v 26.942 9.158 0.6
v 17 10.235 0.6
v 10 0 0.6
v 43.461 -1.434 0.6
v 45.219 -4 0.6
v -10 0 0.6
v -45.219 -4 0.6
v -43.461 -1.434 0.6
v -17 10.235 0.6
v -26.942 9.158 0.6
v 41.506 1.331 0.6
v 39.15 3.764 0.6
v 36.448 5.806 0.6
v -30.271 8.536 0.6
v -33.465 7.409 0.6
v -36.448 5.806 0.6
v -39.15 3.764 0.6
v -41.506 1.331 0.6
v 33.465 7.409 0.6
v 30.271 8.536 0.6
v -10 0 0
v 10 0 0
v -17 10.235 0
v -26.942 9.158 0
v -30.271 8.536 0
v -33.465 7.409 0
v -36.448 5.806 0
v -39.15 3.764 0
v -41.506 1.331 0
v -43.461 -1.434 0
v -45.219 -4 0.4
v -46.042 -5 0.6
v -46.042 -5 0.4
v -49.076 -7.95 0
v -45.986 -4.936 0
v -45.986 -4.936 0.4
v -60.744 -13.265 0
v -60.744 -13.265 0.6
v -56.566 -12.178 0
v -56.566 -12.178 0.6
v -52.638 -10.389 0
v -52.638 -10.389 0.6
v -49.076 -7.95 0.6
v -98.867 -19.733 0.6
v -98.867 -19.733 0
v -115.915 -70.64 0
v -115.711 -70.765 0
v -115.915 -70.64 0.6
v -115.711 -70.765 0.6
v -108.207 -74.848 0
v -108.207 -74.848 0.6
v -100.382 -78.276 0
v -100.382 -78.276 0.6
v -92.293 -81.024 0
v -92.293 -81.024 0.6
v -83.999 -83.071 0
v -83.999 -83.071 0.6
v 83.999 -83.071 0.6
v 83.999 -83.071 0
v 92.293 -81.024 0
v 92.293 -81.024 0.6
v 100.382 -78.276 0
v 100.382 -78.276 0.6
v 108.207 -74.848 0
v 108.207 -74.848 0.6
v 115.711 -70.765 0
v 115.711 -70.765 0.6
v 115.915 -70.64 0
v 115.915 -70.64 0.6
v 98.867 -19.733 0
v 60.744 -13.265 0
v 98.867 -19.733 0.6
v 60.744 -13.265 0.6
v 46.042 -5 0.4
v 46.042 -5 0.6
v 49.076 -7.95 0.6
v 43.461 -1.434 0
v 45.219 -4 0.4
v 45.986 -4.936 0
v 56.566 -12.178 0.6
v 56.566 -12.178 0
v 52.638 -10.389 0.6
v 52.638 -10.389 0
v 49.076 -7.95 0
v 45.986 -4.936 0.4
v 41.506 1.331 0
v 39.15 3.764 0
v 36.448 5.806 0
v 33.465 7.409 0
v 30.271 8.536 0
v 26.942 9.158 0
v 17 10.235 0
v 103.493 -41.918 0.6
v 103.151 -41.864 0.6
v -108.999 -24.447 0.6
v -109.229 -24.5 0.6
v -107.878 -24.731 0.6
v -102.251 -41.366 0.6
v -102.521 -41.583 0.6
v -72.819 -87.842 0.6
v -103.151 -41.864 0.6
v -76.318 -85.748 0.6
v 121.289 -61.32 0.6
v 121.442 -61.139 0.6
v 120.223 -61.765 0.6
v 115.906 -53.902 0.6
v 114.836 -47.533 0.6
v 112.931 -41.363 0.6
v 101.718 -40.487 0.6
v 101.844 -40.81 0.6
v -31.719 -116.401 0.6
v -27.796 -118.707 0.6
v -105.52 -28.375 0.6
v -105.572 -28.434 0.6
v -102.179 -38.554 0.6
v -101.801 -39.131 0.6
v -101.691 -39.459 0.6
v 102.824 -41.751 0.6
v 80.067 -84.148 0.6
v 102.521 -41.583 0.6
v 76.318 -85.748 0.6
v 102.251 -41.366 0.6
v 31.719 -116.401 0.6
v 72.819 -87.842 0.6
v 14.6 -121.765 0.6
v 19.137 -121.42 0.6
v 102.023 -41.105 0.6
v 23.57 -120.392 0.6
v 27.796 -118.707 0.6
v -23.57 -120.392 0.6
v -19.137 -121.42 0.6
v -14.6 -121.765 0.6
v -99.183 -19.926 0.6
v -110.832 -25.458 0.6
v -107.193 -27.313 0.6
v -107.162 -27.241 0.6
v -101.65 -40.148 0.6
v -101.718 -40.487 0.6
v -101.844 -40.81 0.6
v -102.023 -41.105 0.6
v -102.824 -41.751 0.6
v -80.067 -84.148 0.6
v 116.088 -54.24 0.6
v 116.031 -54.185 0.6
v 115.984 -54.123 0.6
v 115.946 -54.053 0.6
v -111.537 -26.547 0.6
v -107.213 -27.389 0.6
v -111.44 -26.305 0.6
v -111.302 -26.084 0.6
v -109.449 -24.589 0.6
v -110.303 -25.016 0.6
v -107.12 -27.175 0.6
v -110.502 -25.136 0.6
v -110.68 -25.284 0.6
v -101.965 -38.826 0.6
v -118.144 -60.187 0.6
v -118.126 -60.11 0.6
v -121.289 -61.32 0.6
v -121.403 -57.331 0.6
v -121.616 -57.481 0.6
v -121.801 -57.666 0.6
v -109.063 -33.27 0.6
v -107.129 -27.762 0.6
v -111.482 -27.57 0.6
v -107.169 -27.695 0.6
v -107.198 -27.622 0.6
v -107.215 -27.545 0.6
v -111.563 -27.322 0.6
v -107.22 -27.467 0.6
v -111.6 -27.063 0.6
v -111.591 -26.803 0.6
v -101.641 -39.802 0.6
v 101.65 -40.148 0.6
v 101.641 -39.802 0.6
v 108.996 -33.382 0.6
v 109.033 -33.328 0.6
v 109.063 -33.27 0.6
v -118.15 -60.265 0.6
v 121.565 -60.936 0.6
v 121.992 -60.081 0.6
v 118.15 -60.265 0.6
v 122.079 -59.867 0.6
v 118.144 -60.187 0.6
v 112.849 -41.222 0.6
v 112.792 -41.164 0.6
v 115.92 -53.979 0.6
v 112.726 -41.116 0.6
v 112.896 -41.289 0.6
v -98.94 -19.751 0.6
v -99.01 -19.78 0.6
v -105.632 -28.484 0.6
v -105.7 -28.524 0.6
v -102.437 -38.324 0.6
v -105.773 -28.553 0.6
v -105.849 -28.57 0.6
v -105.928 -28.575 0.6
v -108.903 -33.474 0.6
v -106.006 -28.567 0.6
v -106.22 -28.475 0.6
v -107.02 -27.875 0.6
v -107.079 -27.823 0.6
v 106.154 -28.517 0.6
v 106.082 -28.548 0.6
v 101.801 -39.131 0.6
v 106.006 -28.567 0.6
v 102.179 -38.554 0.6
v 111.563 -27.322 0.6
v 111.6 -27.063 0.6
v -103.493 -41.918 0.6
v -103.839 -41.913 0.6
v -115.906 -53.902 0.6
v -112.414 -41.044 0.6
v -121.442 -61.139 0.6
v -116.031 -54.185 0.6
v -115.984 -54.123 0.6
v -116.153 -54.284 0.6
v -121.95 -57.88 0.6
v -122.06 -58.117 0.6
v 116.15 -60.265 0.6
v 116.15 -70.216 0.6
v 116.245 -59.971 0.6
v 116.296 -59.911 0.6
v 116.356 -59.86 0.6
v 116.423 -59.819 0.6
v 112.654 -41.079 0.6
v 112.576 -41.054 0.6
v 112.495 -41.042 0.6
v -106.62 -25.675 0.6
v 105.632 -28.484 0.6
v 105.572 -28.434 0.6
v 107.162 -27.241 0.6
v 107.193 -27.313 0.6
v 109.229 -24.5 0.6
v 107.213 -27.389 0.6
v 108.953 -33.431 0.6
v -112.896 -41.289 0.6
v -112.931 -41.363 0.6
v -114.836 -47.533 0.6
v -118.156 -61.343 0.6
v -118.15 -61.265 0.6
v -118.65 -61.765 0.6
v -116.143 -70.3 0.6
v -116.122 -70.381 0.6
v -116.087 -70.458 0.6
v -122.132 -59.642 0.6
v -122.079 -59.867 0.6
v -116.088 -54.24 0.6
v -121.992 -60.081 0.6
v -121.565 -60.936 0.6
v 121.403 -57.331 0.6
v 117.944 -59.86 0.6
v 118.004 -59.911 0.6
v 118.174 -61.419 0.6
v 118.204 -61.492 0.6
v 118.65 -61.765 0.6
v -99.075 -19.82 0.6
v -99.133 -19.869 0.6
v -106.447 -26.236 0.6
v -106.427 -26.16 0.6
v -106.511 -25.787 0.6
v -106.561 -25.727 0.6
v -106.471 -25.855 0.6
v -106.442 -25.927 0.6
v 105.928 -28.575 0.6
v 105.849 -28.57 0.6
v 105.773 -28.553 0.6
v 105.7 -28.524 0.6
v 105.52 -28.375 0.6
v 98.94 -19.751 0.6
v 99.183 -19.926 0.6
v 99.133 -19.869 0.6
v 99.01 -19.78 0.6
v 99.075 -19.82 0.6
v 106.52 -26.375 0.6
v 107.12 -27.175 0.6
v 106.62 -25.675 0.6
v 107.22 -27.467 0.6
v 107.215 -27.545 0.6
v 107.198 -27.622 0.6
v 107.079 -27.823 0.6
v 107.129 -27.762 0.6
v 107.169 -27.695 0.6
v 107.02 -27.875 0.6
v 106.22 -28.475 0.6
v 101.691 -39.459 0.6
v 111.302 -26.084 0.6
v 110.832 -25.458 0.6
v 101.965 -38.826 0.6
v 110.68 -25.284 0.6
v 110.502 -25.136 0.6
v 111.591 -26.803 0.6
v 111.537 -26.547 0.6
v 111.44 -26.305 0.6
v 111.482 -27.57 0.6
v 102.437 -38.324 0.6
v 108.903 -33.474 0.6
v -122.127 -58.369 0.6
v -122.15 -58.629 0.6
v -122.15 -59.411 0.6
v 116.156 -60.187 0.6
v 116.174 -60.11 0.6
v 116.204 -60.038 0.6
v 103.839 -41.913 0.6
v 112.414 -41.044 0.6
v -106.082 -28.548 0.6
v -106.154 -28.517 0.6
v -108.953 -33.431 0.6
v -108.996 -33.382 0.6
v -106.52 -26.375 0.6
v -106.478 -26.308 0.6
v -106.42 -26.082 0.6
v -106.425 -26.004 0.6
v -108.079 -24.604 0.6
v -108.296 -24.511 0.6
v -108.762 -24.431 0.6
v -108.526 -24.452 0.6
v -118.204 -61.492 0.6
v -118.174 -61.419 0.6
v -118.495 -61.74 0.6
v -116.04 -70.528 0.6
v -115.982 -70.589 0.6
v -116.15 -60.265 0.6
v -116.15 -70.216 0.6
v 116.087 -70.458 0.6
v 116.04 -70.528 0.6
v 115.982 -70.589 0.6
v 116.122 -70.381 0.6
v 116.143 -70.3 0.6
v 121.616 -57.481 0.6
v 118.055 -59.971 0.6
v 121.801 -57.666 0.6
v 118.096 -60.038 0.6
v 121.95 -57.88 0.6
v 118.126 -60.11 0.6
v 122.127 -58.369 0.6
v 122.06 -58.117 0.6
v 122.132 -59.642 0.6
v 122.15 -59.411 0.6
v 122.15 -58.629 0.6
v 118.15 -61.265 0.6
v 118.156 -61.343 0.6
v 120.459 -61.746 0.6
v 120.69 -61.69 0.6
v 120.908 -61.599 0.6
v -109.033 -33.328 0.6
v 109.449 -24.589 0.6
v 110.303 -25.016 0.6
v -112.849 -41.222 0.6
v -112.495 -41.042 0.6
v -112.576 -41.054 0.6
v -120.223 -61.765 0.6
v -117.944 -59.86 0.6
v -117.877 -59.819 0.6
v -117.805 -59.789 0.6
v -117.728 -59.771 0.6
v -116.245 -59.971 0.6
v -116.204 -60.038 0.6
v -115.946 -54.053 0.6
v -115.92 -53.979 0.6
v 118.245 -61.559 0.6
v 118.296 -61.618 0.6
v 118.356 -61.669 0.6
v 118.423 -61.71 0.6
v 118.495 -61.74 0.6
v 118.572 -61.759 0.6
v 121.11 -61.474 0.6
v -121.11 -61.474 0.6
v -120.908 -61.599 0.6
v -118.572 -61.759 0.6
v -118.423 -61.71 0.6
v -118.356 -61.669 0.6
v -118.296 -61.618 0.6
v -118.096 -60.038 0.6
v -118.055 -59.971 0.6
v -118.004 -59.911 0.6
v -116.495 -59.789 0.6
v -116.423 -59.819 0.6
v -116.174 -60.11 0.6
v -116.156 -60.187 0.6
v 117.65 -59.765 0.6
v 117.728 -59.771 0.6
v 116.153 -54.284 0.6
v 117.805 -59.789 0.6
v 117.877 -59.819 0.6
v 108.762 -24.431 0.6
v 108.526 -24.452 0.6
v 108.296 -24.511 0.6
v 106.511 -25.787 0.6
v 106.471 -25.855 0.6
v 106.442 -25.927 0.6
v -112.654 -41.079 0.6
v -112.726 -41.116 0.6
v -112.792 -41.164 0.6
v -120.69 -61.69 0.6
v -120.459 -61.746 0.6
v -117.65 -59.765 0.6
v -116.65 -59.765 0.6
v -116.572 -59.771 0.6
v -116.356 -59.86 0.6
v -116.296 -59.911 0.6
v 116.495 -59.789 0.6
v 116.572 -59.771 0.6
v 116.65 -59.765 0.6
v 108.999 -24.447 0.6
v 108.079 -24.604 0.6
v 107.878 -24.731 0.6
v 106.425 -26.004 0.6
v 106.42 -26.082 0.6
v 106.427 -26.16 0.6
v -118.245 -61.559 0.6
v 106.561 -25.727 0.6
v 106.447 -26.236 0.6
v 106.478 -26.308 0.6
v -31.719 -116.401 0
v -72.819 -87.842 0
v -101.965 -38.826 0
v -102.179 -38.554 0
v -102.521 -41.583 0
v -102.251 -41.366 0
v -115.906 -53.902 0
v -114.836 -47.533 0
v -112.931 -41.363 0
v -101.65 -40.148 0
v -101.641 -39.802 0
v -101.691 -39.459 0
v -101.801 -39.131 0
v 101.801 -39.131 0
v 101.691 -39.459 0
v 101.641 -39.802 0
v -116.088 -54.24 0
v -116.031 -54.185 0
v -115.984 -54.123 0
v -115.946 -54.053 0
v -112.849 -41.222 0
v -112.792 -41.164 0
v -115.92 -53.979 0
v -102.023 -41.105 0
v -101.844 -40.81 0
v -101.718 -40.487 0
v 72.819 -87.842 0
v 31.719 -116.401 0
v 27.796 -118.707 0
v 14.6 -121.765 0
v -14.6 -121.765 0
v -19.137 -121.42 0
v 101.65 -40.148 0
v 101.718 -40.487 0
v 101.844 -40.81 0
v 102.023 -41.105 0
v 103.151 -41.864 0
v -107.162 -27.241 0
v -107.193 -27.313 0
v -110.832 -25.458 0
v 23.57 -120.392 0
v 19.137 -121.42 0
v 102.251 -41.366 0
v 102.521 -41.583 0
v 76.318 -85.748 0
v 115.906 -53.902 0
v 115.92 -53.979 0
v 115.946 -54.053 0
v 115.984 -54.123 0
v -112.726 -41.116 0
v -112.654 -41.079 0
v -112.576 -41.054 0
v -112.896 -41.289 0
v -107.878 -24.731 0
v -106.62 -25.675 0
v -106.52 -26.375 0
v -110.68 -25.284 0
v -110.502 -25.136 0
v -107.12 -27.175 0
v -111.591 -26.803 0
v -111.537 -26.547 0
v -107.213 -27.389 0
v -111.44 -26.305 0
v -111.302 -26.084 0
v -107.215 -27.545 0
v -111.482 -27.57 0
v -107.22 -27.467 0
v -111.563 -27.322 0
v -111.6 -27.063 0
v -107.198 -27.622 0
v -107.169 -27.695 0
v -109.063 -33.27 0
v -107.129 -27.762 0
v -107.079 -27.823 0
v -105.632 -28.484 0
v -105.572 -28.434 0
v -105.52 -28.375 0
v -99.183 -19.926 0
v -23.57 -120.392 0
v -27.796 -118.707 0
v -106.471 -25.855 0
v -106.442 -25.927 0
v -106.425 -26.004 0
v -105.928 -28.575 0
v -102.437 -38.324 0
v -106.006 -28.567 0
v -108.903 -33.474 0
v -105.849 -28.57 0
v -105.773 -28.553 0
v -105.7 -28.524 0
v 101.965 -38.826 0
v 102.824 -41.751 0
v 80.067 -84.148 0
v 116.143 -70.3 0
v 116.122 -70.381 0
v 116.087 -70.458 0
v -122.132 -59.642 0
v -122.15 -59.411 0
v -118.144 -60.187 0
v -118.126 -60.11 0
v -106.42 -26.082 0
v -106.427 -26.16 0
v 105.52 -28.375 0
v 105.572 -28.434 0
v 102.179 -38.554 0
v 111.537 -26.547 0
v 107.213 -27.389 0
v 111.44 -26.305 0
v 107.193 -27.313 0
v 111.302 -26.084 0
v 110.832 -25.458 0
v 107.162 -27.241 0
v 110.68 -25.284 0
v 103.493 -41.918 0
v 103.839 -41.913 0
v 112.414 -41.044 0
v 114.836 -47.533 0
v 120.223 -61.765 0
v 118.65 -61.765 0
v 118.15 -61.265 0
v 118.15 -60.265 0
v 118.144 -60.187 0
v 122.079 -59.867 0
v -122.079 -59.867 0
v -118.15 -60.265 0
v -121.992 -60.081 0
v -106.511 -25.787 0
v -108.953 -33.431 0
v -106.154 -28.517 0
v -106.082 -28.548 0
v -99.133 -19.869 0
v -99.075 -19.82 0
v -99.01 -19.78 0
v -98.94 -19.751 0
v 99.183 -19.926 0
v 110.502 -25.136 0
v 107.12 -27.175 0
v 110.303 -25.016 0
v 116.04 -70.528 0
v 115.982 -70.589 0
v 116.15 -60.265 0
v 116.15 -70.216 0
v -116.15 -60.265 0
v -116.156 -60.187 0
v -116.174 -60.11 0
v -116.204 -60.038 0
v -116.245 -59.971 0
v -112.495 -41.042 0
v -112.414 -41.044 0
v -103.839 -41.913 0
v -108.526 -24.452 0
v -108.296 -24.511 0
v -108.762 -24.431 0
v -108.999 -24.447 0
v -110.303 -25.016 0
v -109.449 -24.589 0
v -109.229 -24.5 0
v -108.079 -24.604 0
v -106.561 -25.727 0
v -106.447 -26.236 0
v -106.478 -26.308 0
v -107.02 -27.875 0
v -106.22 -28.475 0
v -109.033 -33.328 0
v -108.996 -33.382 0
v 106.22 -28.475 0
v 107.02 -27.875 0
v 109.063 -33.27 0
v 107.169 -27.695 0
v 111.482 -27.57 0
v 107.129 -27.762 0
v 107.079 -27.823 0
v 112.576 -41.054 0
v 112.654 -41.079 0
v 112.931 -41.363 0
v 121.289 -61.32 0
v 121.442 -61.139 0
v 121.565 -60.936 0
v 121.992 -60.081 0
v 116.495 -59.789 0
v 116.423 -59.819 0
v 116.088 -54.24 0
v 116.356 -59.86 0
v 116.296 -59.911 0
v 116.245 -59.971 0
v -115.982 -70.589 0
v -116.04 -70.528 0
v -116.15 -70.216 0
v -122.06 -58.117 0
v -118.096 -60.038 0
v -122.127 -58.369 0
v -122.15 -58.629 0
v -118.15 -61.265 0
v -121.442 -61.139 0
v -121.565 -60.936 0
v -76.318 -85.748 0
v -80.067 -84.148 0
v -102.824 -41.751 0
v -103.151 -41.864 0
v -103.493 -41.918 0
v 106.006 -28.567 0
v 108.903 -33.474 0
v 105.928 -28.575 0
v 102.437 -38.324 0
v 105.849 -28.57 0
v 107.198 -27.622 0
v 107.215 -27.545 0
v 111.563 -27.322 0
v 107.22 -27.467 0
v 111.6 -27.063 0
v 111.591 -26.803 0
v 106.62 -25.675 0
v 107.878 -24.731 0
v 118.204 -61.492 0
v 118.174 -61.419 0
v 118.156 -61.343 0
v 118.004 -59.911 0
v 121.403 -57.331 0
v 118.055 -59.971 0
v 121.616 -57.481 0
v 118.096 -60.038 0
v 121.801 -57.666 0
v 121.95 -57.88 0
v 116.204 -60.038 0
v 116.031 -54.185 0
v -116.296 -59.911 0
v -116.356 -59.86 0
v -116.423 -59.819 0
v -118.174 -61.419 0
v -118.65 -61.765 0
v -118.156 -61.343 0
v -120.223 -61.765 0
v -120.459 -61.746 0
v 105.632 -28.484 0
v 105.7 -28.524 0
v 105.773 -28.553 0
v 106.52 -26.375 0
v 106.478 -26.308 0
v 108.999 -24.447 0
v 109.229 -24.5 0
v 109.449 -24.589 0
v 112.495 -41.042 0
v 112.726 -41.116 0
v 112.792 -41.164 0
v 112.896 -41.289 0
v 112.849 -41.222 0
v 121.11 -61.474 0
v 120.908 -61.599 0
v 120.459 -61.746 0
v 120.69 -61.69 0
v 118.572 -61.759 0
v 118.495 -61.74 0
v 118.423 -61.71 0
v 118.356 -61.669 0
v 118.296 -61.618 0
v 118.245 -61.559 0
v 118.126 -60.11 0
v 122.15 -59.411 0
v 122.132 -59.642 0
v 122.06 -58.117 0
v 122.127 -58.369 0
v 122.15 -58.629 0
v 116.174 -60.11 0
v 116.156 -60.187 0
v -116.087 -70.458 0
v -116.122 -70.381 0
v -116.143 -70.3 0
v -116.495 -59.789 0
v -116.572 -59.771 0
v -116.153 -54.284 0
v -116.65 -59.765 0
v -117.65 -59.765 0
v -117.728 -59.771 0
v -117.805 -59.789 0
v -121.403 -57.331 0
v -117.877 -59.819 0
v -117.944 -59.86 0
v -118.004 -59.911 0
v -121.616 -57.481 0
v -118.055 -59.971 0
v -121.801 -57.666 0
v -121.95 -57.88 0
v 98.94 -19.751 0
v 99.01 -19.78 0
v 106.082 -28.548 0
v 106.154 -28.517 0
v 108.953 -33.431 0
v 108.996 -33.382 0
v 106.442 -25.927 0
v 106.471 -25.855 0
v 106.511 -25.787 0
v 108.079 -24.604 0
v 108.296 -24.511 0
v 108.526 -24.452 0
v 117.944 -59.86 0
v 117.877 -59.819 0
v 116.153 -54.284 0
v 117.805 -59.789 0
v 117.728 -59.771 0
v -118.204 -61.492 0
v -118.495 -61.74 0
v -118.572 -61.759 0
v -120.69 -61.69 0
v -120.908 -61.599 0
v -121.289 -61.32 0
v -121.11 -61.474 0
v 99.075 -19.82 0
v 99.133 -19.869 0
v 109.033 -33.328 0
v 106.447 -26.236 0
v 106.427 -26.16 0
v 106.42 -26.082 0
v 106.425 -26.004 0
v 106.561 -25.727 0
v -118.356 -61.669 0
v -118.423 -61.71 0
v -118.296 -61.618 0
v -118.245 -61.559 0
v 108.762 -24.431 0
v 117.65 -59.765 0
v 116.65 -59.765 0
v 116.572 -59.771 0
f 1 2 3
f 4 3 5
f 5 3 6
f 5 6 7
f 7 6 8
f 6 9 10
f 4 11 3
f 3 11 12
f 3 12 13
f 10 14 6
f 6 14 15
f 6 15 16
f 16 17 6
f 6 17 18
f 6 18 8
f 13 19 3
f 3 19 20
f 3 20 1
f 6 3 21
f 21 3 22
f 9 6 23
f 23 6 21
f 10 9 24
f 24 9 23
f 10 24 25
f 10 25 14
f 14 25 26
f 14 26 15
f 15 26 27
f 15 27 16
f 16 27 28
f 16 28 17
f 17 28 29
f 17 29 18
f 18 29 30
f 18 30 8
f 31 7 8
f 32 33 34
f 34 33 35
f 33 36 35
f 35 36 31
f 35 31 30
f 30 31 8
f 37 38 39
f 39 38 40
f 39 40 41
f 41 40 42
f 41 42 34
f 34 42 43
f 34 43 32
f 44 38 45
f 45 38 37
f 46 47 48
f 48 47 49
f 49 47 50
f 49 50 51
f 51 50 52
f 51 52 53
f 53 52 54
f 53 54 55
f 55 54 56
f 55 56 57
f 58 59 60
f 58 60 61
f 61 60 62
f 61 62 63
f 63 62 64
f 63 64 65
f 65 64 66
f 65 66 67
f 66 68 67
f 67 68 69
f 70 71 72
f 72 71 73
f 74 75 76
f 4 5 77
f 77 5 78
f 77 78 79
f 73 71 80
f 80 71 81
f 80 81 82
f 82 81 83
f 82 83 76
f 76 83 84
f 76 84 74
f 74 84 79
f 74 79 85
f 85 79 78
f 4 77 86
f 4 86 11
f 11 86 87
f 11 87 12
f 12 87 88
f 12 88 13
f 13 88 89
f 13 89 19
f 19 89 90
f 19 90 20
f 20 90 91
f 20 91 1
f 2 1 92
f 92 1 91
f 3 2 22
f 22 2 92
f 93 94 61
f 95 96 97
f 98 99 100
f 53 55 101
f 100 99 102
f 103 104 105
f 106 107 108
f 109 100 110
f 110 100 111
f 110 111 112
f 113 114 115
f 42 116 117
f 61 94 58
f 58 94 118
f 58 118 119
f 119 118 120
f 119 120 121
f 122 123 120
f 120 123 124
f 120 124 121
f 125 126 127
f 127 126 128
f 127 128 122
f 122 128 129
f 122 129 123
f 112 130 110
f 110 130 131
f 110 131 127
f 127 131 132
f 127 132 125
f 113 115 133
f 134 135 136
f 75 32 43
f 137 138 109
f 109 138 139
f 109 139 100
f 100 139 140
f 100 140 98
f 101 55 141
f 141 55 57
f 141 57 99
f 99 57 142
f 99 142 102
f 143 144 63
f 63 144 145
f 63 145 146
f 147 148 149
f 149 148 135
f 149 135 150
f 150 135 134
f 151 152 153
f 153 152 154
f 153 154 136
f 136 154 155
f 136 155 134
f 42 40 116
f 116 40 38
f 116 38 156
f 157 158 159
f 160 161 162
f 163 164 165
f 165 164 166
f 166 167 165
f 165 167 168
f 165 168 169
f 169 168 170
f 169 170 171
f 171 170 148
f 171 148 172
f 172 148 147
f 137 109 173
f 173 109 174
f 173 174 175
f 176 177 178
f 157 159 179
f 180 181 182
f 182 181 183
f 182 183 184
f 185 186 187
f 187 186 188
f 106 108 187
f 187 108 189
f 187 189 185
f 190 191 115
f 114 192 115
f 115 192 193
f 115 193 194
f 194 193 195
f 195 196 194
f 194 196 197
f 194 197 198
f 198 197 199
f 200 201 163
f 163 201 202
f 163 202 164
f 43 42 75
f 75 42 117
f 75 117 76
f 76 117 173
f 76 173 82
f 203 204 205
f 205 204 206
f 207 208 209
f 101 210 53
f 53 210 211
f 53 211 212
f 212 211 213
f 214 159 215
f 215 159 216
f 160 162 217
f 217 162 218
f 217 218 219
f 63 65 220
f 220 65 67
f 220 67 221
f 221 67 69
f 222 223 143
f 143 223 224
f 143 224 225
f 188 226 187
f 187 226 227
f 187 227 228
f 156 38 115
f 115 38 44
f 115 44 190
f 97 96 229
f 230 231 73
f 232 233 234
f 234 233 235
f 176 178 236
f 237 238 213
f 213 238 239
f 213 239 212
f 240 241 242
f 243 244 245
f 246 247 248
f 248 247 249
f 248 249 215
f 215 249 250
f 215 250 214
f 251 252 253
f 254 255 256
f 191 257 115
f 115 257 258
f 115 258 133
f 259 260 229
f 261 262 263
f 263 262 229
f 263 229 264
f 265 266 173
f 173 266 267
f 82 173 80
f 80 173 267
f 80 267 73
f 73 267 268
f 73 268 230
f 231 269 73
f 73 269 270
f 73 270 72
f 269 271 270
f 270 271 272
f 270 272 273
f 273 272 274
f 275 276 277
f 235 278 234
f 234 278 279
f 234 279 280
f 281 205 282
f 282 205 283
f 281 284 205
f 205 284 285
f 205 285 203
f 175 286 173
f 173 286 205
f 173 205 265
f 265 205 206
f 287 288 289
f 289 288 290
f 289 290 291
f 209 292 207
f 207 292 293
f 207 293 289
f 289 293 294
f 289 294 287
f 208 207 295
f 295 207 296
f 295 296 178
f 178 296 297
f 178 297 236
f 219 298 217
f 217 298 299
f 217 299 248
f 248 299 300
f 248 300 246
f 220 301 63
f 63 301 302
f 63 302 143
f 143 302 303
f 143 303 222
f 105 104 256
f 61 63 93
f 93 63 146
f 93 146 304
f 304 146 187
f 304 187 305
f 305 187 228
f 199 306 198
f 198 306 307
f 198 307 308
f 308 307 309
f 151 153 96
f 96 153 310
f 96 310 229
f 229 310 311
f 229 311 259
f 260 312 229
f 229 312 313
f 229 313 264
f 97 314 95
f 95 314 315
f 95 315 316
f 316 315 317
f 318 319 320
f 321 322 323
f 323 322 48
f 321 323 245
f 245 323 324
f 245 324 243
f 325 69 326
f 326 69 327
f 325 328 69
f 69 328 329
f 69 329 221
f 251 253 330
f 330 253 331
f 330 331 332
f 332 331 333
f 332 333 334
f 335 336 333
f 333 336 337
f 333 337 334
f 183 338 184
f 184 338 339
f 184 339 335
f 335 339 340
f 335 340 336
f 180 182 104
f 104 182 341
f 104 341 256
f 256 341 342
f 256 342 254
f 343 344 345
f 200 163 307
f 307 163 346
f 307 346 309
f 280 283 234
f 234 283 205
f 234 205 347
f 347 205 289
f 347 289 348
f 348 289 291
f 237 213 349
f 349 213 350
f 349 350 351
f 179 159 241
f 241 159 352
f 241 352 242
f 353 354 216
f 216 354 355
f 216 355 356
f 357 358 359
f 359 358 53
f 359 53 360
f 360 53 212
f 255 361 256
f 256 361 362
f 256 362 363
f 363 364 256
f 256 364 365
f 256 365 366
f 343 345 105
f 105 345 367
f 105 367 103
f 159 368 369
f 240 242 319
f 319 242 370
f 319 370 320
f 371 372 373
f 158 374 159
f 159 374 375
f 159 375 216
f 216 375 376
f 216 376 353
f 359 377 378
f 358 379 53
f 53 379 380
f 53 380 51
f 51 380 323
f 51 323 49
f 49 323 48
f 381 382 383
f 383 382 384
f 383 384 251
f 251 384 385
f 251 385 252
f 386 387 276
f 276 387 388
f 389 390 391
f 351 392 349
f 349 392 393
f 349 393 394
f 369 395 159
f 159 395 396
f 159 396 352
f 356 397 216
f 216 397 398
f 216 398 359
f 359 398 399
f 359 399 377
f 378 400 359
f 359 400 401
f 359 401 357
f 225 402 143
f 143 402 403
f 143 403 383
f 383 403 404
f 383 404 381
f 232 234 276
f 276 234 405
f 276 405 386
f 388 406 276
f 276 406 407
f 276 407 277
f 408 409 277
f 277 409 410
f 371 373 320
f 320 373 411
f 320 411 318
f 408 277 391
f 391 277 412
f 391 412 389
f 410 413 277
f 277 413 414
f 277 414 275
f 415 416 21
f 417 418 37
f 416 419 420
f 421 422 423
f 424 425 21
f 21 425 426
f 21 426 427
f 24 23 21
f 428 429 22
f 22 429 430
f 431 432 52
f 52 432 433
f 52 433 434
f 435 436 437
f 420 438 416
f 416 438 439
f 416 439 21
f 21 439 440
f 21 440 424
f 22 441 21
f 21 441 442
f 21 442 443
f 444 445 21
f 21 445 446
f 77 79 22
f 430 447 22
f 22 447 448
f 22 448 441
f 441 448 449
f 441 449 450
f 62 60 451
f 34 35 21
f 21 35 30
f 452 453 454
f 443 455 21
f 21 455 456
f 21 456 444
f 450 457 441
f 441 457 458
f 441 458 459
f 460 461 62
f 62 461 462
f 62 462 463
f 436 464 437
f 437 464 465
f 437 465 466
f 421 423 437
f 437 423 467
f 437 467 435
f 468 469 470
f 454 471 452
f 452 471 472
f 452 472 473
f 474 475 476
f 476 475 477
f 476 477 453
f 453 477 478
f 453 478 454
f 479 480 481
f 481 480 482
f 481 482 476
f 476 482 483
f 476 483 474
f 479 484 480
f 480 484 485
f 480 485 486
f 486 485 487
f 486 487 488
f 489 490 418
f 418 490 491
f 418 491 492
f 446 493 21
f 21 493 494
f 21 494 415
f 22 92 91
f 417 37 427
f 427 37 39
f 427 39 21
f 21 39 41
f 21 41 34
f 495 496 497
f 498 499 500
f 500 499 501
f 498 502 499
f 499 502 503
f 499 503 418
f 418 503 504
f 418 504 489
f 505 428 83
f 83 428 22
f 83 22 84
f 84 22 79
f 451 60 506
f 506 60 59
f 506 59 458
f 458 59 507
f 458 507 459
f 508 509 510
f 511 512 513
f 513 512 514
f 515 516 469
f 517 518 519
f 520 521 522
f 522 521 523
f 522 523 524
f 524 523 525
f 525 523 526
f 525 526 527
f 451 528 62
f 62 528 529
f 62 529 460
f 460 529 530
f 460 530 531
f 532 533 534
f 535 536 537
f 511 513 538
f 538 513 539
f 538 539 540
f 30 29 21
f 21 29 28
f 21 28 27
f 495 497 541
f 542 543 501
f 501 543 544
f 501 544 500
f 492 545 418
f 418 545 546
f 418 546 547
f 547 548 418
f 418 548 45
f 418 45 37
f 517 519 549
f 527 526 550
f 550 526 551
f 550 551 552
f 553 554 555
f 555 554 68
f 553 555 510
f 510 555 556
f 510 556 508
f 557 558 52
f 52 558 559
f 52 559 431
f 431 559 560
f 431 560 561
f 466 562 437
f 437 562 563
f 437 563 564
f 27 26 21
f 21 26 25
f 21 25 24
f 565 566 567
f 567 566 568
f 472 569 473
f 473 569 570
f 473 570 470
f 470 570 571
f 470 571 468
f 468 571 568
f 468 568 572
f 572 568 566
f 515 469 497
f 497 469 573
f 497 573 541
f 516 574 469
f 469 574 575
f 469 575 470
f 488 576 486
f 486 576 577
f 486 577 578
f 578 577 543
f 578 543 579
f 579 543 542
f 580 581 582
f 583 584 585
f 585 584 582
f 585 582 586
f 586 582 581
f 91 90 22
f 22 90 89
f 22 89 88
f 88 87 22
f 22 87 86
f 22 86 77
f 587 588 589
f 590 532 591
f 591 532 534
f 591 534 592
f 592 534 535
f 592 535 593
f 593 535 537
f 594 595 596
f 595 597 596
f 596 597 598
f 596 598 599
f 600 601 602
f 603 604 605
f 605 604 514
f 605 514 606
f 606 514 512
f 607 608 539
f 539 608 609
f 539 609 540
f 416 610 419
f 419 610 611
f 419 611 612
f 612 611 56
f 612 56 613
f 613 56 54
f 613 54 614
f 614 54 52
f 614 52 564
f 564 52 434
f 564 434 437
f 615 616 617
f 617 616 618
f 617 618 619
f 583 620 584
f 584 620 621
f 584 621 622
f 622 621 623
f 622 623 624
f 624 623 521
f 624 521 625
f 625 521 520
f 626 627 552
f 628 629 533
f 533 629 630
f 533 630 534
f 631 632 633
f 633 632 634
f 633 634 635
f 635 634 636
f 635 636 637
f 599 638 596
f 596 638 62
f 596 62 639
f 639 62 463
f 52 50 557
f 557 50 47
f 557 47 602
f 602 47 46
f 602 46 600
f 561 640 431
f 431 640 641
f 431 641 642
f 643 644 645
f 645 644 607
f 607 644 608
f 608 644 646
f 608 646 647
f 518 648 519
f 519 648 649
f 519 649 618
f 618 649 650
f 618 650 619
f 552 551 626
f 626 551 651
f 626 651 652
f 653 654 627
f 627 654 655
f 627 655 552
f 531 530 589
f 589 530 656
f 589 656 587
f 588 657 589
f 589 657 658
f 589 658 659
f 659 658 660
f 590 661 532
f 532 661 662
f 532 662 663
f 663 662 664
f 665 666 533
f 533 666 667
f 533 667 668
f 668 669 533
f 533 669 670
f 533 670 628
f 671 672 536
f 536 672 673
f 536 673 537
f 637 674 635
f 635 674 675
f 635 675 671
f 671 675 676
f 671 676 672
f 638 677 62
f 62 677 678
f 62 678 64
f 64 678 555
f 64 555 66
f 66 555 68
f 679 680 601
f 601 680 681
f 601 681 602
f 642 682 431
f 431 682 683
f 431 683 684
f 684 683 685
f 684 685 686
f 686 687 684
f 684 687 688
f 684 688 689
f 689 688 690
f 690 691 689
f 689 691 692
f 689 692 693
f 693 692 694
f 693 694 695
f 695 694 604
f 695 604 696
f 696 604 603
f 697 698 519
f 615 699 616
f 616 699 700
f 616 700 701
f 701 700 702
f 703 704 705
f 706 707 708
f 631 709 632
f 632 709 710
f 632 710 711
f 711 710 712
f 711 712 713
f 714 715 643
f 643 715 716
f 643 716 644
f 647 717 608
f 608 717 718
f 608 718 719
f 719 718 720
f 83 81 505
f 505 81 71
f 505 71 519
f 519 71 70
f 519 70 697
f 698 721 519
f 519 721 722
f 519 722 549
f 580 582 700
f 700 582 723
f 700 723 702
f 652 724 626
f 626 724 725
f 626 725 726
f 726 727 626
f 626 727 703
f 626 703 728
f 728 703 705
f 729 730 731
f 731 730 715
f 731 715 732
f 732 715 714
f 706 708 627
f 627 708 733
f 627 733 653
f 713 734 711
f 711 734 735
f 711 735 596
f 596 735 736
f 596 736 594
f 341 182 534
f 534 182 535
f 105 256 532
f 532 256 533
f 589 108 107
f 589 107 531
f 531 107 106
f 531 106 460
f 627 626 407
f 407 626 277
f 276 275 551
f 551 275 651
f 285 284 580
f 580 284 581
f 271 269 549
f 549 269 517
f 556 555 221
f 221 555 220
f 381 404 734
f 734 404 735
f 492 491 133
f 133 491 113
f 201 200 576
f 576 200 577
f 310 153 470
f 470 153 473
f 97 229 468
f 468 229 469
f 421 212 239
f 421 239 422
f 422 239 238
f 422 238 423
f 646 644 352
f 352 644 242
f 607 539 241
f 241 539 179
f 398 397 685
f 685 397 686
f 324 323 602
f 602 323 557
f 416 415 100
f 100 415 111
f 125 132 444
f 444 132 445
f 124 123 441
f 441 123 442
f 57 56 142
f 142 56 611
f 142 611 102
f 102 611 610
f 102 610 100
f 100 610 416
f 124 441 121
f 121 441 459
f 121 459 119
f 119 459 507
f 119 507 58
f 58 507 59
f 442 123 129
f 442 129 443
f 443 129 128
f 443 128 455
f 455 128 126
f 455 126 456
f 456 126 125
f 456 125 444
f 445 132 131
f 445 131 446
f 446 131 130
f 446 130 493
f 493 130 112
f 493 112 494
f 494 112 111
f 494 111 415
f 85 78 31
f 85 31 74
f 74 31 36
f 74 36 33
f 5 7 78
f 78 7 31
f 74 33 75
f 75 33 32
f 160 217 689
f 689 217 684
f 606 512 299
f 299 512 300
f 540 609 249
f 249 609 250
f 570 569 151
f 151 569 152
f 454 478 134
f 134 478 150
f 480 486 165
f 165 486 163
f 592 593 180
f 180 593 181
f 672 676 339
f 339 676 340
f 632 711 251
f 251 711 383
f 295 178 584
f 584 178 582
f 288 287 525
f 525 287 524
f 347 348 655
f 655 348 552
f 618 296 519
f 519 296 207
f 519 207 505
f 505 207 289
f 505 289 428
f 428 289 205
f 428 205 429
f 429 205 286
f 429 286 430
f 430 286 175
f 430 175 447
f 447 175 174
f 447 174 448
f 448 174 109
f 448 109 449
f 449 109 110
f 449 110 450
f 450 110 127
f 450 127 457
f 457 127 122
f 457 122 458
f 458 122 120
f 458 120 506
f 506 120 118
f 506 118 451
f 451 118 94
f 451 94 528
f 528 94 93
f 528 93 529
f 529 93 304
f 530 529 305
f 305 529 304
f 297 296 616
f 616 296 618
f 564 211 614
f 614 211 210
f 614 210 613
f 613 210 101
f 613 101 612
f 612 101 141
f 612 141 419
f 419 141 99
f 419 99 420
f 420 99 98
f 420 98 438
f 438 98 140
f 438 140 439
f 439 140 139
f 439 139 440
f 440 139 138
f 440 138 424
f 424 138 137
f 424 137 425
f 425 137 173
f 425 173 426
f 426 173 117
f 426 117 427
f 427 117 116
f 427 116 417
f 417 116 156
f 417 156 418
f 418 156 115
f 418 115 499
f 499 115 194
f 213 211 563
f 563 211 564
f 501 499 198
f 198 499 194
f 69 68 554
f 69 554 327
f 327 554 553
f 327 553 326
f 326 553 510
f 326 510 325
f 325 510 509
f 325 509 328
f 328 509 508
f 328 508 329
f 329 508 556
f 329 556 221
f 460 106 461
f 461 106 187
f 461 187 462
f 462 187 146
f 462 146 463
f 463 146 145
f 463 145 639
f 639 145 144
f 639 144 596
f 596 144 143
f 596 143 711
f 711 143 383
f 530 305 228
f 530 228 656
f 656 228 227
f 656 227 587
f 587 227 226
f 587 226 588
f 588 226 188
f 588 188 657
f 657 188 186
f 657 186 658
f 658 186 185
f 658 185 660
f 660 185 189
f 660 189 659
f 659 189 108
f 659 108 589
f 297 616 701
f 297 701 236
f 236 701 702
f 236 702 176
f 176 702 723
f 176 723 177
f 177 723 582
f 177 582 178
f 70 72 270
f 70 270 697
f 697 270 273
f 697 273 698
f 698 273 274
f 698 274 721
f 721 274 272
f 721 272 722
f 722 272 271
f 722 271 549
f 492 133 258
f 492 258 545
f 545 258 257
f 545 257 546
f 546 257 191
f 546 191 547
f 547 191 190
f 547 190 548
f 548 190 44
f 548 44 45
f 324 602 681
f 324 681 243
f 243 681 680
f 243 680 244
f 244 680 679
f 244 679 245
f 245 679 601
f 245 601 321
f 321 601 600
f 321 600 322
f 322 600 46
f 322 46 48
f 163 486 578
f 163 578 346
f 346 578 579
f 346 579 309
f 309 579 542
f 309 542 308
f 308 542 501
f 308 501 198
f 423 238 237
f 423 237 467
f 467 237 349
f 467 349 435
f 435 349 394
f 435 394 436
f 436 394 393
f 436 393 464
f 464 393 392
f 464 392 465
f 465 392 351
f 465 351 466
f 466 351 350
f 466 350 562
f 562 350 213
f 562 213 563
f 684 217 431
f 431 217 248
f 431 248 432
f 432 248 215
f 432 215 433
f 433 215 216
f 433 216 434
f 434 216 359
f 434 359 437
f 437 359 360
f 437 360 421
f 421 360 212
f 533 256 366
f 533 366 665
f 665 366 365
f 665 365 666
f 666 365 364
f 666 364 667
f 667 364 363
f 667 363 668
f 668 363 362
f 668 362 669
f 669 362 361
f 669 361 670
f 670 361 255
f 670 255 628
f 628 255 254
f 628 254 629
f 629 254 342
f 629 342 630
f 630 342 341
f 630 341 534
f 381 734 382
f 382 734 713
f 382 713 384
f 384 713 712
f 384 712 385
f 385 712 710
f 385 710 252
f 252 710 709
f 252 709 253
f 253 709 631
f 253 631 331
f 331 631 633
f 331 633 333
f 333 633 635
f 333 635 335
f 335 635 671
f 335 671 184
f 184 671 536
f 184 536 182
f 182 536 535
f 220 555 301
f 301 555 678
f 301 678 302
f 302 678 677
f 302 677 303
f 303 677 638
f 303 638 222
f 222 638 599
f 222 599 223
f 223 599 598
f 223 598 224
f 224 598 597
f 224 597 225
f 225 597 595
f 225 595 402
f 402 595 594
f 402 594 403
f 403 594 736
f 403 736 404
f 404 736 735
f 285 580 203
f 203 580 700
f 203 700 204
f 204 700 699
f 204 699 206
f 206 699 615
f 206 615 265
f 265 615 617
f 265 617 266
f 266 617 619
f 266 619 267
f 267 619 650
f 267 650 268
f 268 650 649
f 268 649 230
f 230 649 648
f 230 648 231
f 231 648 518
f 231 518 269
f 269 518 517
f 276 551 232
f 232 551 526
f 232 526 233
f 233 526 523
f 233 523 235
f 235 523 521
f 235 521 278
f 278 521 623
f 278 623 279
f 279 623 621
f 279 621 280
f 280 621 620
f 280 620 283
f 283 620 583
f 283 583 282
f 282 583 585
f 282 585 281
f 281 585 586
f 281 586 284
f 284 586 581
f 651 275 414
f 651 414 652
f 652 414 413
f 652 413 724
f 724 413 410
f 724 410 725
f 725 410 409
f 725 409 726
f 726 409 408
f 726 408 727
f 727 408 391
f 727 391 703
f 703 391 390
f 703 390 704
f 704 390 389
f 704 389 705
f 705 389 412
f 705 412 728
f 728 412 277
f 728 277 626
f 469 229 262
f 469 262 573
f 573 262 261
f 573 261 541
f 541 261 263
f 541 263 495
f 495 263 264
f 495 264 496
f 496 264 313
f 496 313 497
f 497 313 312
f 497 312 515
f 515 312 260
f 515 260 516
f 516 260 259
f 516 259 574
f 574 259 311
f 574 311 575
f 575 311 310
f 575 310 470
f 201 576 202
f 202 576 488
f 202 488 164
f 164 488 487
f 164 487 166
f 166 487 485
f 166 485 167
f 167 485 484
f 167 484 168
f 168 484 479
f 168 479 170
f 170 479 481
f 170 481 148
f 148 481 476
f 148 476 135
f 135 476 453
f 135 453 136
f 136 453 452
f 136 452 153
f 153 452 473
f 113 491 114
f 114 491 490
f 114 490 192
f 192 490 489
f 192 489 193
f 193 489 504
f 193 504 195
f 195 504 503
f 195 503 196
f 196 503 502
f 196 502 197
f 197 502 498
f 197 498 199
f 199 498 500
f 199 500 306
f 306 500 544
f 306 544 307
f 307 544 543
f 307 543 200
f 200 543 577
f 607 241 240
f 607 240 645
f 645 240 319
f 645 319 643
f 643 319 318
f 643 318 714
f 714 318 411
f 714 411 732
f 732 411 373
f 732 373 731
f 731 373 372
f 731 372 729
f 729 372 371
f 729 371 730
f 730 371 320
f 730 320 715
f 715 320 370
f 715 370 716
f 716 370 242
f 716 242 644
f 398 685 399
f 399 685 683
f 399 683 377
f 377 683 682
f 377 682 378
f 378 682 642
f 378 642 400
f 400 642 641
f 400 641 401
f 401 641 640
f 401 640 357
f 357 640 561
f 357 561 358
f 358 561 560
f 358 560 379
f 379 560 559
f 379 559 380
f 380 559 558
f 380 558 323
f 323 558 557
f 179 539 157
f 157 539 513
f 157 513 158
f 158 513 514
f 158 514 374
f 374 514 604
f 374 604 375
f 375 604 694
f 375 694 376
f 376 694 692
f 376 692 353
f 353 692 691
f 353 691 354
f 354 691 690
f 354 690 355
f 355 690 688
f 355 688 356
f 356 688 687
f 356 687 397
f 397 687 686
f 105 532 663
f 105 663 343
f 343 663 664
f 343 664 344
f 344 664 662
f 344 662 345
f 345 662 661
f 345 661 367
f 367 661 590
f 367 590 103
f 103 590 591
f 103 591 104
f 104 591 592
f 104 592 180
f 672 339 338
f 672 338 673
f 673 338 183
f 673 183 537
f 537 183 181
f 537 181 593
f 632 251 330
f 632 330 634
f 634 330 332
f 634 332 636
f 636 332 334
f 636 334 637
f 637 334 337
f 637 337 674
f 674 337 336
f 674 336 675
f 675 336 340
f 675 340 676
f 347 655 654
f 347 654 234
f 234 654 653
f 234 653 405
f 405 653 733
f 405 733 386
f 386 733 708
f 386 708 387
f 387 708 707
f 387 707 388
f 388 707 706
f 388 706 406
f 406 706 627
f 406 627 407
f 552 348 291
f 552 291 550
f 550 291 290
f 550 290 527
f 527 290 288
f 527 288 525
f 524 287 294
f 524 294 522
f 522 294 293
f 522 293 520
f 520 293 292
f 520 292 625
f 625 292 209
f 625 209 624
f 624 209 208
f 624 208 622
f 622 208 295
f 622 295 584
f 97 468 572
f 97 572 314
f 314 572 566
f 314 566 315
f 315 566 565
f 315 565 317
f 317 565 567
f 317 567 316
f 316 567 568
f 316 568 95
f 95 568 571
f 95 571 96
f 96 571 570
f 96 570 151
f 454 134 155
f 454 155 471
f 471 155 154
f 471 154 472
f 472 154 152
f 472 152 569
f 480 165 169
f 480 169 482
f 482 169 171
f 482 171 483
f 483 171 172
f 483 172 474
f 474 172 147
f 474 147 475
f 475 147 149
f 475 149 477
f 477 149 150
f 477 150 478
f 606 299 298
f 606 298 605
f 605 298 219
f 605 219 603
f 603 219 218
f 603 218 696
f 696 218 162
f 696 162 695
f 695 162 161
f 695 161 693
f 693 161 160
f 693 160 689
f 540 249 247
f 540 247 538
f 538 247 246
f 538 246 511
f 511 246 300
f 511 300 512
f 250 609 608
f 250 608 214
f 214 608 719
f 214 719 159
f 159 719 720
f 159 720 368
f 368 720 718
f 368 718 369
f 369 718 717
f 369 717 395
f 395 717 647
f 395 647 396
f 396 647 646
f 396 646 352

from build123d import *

# Parameters (mm, degrees)
MAIN_SHAPE_DEPTH        = 0.6
TABS_DEPTH              = 154.060061459
TABS_DEPTH_BACK         = 154.060061459
CHIN_GUARD_DEPTH        = 0.6
FILLET1_R               = 30
SKETCH8_W               = 100
SKETCH8_H               = 1
CUT_EXTRUDE3_DEPTH      = 0.2
BOSS_EXTRUDE1_START     = -0.6
BOSS_EXTRUDE1_DEPTH     = 0.6
CUT_EXTRUDE4_DEPTH      = 173.475044334
CUT_EXTRUDE4_DEPTH_BACK = 173.475044334
FILLET2_R               = 0.5
FILLET3_R               = 1.5


with BuildPart() as part:
    # Sketch1 → Main Shape (new body)
    with BuildSketch(Plane.XY):
        with BuildLine():
            Line((-24, -91.764766734), (24, -91.764766734))
            Line((24, -91.764766734), (78.266232563, -84.05670244))
            ThreePointArc((78.266232563, -84.05670244), (97.655491519, -79.289252293), (115.711102551, -70.764766734))
            ThreePointArc((115.711102551, -70.764766734), (120.685143325, -65.658407438), (122.5, -58.764766734))
            ThreePointArc((122.5, -58.764766734), (120.227482046, -43.118277124), (113.597722286, -28.764766734))
            ThreePointArc((113.597722286, -28.764766734), (107.811505455, -22.955172168), (100.180351554, -19.955641477))
            Line((100.180351554, -19.955641477), (60.74391922, -13.264766734))
            ThreePointArc((60.74391922, -13.264766734), (50.804108255, -9.246591688), (43.461443341, -1.434367632))
            ThreePointArc((43.461443341, -1.434367632), (36.448172688, 5.805997675), (26.941855461, 9.15842781))
            Line((26.941855461, 9.15842781), (17, 10.235233266))
            Line((17, 10.235233266), (10, 0))
            Line((10, 0), (-10, 0))
            Line((-10, 0), (-17, 10.235233266))
            Line((-17, 10.235233266), (-26.941855461, 9.15842781))
            ThreePointArc((-26.941855461, 9.15842781), (-36.448172688, 5.805997675), (-43.461443341, -1.434367632))
            ThreePointArc((-43.461443341, -1.434367632), (-50.804108255, -9.246591688), (-60.74391922, -13.264766734))
            Line((-60.74391922, -13.264766734), (-100.180351554, -19.955641477))
            ThreePointArc((-100.180351554, -19.955641477), (-107.811505455, -22.955172168), (-113.597722286, -28.764766734))
            ThreePointArc((-113.597722286, -28.764766734), (-120.227482046, -43.118277124), (-122.5, -58.764766734))
            ThreePointArc((-122.5, -58.764766734), (-120.685143325, -65.658407438), (-115.711102551, -70.764766734))
            ThreePointArc((-115.711102551, -70.764766734), (-97.655491519, -79.289252293), (-78.266232563, -84.05670244))
            Line((-78.266232563, -84.05670244), (-24, -91.764766734))
        make_face()
    extrude(amount=MAIN_SHAPE_DEPTH)

    # Sketch2 → Tabs (cut, two sides: drawn at the far end of the back side and taken through both)
    with BuildSketch(Plane.XY.offset(0.6).offset(-TABS_DEPTH_BACK)):
        with BuildLine():
            Line((-121.15, -59.764766734), (-121.15, -57.764766734))
            Line((-121.15, -57.764766734), (-115.985504489, -54.767473344))
            ThreePointArc((-115.985504489, -54.767473344), (-113.65344245, -43.380285918), (-108.686779625, -32.871298753))
            Line((-108.686779625, -32.871298753), (-111.02, -27.374766734))
            Line((-111.02, -27.374766734), (-109.82, -25.774766734))
            Line((-109.82, -25.774766734), (-107.82, -24.774766734))
            Line((-107.82, -24.774766734), (-106.22, -25.974766734))
            Line((-106.22, -25.974766734), (-107.42, -27.574766734))
            Line((-107.42, -27.574766734), (-105.82, -28.774766734))
            Line((-105.82, -28.774766734), (-99.063546264, -19.766161753))
            Line((-99.063546264, -19.766161753), (-100.180351554, -19.955641477))
            ThreePointArc((-100.180351554, -19.955641477), (-107.811505455, -22.955172168), (-113.597722286, -28.764766734))
            ThreePointArc((-113.597722286, -28.764766734), (-120.227482046, -43.118277124), (-122.5, -58.764766734))
            ThreePointArc((-122.5, -58.764766734), (-120.810564569, -65.431850055), (-116.15, -70.489846692))
            Line((-116.15, -70.489846692), (-116.15, -59.764766734))
            Line((-116.15, -59.764766734), (-118.15, -59.764766734))
            Line((-118.15, -59.764766734), (-118.15, -61.764766734))
            Line((-118.15, -61.764766734), (-120.15, -61.764766734))
            Line((-120.15, -61.764766734), (-121.15, -59.764766734))
        make_face()
        with BuildLine():
            Line((105.82, -28.774766734), (99.063546264, -19.766161753))
            Line((99.063546264, -19.766161753), (100.180351554, -19.955641477))
            ThreePointArc((100.180351554, -19.955641477), (107.811505455, -22.955172168), (113.597722286, -28.764766734))
            ThreePointArc((113.597722286, -28.764766734), (120.227482046, -43.118277124), (122.5, -58.764766734))
            ThreePointArc((122.5, -58.764766734), (120.810564569, -65.431850055), (116.15, -70.489846692))
            Line((116.15, -70.489846692), (116.15, -59.764766734))
            Line((116.15, -59.764766734), (118.15, -59.764766734))
            Line((118.15, -59.764766734), (118.15, -61.764766734))
            Line((118.15, -61.764766734), (120.15, -61.764766734))
            Line((120.15, -61.764766734), (121.15, -59.764766734))
            Line((121.15, -59.764766734), (121.15, -57.764766734))
            Line((121.15, -57.764766734), (115.985504489, -54.767473344))
            ThreePointArc((115.985504489, -54.767473344), (113.65344245, -43.380285918), (108.686779625, -32.871298753))
            Line((108.686779625, -32.871298753), (111.02, -27.374766734))
            Line((111.02, -27.374766734), (109.82, -25.774766734))
            Line((109.82, -25.774766734), (107.82, -24.774766734))
            Line((107.82, -24.774766734), (106.22, -25.974766734))
            Line((106.22, -25.974766734), (107.42, -27.574766734))
            Line((107.42, -27.574766734), (105.82, -28.774766734))
        make_face()
    extrude(amount=TABS_DEPTH + TABS_DEPTH_BACK, mode=Mode.SUBTRACT)

    # Sketch5 → Chin guard (add)
    with BuildSketch(Plane.XY.offset(0.6)):
        Polygon((-78.266232563, -84.05670244), (-24, -121.764766734), (24, -121.764766734), (78.266232563, -84.05670244), (24, -91.764766734), (-24, -91.764766734), align=None)
    extrude(amount=-CHIN_GUARD_DEPTH)

    # Fillet1
    fillet1_edges = [part.edges().sort_by_distance(p)[0] for p in [
        (-24, -121.764766734, 0.3),
        (24, -121.764766734, 0.3),
        (78.266232563, -84.05670244, 0.3),
        (-78.266232563, -84.05670244, 0.3),
    ]]
    fillet(fillet1_edges, radius=FILLET1_R)

    # Sketch8 → Cut-Extrude3 (cut)
    with BuildSketch(Plane.XY.offset(0.6)):
        with Locations((0, -4.5)):
            Rectangle(SKETCH8_W, SKETCH8_H)
    extrude(amount=-CUT_EXTRUDE3_DEPTH, mode=Mode.SUBTRACT)

    # Sketch9 → Boss-Extrude1 (add)
    with BuildSketch(Plane.XY.offset(0.6).offset(BOSS_EXTRUDE1_START)):
        with BuildLine():
            Line((-121.15, -61.764766734), (-120.15, -61.764766734))
            Line((-120.15, -61.764766734), (-121.15, -59.764766734))
            Line((-121.15, -59.764766734), (-121.15, -57.764766734))
            Line((-121.15, -57.764766734), (-115.985504489, -54.767473344))
            ThreePointArc((-115.985504489, -54.767473344), (-115.959300984, -54.461436848), (-115.931165822, -54.155571889))
            Line((-115.931165822, -54.155571889), (-122.15, -57.764766734))
            Line((-122.15, -57.764766734), (-122.15, -59.764766734))
            Line((-122.15, -59.764766734), (-121.15, -61.764766734))
        make_face()
        with BuildLine():
            Line((-111.02, -27.374766734), (-108.686779625, -32.871298753))
            ThreePointArc((-108.686779625, -32.871298753), (-108.849438719, -33.131850053), (-109.010449565, -33.393423117))
            Line((-109.010449565, -33.393423117), (-111.82, -26.774766734))
            Line((-111.82, -26.774766734), (-110.62, -25.174766734))
            Line((-110.62, -25.174766734), (-108.62, -24.174766734))
            Line((-108.62, -24.174766734), (-107.82, -24.774766734))
            Line((-107.82, -24.774766734), (-109.82, -25.774766734))
            Line((-109.82, -25.774766734), (-111.02, -27.374766734))
        make_face()
        with BuildLine():
            Line((108.62, -24.174766734), (107.82, -24.774766734))
            Line((107.82, -24.774766734), (109.82, -25.774766734))
            Line((109.82, -25.774766734), (111.02, -27.374766734))
            Line((111.02, -27.374766734), (108.686779625, -32.871298753))
            ThreePointArc((108.686779625, -32.871298753), (108.849438719, -33.131850053), (109.010449565, -33.393423117))
            Line((109.010449565, -33.393423117), (111.82, -26.774766734))
            Line((111.82, -26.774766734), (110.62, -25.174766734))
            Line((110.62, -25.174766734), (108.62, -24.174766734))
        make_face()
        with BuildLine():
            Line((121.15, -57.764766734), (115.985504489, -54.767473344))
            ThreePointArc((115.985504489, -54.767473344), (115.959300984, -54.461436848), (115.931165822, -54.155571889))
            Line((115.931165822, -54.155571889), (122.15, -57.764766734))
            Line((122.15, -57.764766734), (122.15, -59.764766734))
            Line((122.15, -59.764766734), (121.15, -61.764766734))
            Line((121.15, -61.764766734), (120.15, -61.764766734))
            Line((120.15, -61.764766734), (121.15, -59.764766734))
            Line((121.15, -59.764766734), (121.15, -57.764766734))
        make_face()
    extrude(amount=BOSS_EXTRUDE1_DEPTH)

    # Sketch7 → Cut-Extrude4 (cut, two sides: drawn at the far end of the back side and taken through both)
    with BuildSketch(Plane.XY.offset(0.6).offset(-CUT_EXTRUDE4_DEPTH_BACK)):
        with BuildLine():
            Line((-103.838644773, -41.913383247), (-112.792739682, -41.005537243))
            ThreePointArc((-112.792739682, -41.005537243), (-111.068159087, -37.116718005), (-109.010449565, -33.393423117))
            Line((-109.010449565, -33.393423117), (-102.436901217, -38.323584378))
            ThreePointArc((-102.436901217, -38.323584378), (-101.773894786, -40.651050555), (-103.838644773, -41.913383247))
        make_face()
        with BuildLine():
            Line((109.010449565, -33.393423117), (102.436901217, -38.323584378))
            ThreePointArc((102.436901217, -38.323584378), (101.773894786, -40.651050555), (103.838644773, -41.913383247))
            Line((103.838644773, -41.913383247), (112.792739682, -41.005537243))
            ThreePointArc((112.792739682, -41.005537243), (111.068159087, -37.116718005), (109.010449565, -33.393423117))
        make_face()
    extrude(amount=CUT_EXTRUDE4_DEPTH + CUT_EXTRUDE4_DEPTH_BACK, mode=Mode.SUBTRACT)

    # Fillet2
    fillet2_edges = [part.edges().sort_by_distance(p)[0] for p in [
        (109.010449565, -33.393423117, 0.3),
        (-112.792739682, -41.005537243, 0.3),
        (-109.010449565, -33.393423117, 0.3),
        (-106.22, -25.974766734, 0.3),
        (-107.42, -27.574766734, 0.3),
        (-105.82, -28.774766734, 0.3),
        (-115.931165822, -54.155571889, 0.3),
        (-118.15, -61.764766734, 0.3),
        (-116.15, -59.764766734, 0.3),
        (-118.15, -59.764766734, 0.3),
        (118.15, -61.764766734, 0.3),
        (118.15, -59.764766734, 0.3),
        (116.15, -59.764766734, 0.3),
        (105.82, -28.774766734, 0.3),
        (107.42, -27.574766734, 0.3),
        (106.22, -25.974766734, 0.3),
        (116.15, -70.489846692, 0.3),
        (115.931165822, -54.155571889, 0.3),
        (112.792739682, -41.005537243, 0.3),
        (99.063546264, -19.766161753, 0.3),
        (-99.063546264, -19.766161753, 0.3),
        (-116.15, -70.489846692, 0.3),
    ]]
    fillet(fillet2_edges, radius=FILLET2_R)

    # Fillet3
    fillet3_edges = [part.edges().sort_by_distance(p)[0] for p in [
        (-122.15, -57.764766734, 0.3),
        (-122.15, -59.764766734, 0.3),
        (-121.15, -61.764766734, 0.3),
        (-108.62, -24.174766734, 0.3),
        (-110.62, -25.174766734, 0.3),
        (-111.82, -26.774766734, 0.3),
        (121.15, -61.764766734, 0.3),
        (122.15, -59.764766734, 0.3),
        (122.15, -57.764766734, 0.3),
        (111.82, -26.774766734, 0.3),
        (110.62, -25.174766734, 0.3),
        (108.62, -24.174766734, 0.3),
    ]]
    fillet(fillet3_edges, radius=FILLET3_R)


solid = part.part
